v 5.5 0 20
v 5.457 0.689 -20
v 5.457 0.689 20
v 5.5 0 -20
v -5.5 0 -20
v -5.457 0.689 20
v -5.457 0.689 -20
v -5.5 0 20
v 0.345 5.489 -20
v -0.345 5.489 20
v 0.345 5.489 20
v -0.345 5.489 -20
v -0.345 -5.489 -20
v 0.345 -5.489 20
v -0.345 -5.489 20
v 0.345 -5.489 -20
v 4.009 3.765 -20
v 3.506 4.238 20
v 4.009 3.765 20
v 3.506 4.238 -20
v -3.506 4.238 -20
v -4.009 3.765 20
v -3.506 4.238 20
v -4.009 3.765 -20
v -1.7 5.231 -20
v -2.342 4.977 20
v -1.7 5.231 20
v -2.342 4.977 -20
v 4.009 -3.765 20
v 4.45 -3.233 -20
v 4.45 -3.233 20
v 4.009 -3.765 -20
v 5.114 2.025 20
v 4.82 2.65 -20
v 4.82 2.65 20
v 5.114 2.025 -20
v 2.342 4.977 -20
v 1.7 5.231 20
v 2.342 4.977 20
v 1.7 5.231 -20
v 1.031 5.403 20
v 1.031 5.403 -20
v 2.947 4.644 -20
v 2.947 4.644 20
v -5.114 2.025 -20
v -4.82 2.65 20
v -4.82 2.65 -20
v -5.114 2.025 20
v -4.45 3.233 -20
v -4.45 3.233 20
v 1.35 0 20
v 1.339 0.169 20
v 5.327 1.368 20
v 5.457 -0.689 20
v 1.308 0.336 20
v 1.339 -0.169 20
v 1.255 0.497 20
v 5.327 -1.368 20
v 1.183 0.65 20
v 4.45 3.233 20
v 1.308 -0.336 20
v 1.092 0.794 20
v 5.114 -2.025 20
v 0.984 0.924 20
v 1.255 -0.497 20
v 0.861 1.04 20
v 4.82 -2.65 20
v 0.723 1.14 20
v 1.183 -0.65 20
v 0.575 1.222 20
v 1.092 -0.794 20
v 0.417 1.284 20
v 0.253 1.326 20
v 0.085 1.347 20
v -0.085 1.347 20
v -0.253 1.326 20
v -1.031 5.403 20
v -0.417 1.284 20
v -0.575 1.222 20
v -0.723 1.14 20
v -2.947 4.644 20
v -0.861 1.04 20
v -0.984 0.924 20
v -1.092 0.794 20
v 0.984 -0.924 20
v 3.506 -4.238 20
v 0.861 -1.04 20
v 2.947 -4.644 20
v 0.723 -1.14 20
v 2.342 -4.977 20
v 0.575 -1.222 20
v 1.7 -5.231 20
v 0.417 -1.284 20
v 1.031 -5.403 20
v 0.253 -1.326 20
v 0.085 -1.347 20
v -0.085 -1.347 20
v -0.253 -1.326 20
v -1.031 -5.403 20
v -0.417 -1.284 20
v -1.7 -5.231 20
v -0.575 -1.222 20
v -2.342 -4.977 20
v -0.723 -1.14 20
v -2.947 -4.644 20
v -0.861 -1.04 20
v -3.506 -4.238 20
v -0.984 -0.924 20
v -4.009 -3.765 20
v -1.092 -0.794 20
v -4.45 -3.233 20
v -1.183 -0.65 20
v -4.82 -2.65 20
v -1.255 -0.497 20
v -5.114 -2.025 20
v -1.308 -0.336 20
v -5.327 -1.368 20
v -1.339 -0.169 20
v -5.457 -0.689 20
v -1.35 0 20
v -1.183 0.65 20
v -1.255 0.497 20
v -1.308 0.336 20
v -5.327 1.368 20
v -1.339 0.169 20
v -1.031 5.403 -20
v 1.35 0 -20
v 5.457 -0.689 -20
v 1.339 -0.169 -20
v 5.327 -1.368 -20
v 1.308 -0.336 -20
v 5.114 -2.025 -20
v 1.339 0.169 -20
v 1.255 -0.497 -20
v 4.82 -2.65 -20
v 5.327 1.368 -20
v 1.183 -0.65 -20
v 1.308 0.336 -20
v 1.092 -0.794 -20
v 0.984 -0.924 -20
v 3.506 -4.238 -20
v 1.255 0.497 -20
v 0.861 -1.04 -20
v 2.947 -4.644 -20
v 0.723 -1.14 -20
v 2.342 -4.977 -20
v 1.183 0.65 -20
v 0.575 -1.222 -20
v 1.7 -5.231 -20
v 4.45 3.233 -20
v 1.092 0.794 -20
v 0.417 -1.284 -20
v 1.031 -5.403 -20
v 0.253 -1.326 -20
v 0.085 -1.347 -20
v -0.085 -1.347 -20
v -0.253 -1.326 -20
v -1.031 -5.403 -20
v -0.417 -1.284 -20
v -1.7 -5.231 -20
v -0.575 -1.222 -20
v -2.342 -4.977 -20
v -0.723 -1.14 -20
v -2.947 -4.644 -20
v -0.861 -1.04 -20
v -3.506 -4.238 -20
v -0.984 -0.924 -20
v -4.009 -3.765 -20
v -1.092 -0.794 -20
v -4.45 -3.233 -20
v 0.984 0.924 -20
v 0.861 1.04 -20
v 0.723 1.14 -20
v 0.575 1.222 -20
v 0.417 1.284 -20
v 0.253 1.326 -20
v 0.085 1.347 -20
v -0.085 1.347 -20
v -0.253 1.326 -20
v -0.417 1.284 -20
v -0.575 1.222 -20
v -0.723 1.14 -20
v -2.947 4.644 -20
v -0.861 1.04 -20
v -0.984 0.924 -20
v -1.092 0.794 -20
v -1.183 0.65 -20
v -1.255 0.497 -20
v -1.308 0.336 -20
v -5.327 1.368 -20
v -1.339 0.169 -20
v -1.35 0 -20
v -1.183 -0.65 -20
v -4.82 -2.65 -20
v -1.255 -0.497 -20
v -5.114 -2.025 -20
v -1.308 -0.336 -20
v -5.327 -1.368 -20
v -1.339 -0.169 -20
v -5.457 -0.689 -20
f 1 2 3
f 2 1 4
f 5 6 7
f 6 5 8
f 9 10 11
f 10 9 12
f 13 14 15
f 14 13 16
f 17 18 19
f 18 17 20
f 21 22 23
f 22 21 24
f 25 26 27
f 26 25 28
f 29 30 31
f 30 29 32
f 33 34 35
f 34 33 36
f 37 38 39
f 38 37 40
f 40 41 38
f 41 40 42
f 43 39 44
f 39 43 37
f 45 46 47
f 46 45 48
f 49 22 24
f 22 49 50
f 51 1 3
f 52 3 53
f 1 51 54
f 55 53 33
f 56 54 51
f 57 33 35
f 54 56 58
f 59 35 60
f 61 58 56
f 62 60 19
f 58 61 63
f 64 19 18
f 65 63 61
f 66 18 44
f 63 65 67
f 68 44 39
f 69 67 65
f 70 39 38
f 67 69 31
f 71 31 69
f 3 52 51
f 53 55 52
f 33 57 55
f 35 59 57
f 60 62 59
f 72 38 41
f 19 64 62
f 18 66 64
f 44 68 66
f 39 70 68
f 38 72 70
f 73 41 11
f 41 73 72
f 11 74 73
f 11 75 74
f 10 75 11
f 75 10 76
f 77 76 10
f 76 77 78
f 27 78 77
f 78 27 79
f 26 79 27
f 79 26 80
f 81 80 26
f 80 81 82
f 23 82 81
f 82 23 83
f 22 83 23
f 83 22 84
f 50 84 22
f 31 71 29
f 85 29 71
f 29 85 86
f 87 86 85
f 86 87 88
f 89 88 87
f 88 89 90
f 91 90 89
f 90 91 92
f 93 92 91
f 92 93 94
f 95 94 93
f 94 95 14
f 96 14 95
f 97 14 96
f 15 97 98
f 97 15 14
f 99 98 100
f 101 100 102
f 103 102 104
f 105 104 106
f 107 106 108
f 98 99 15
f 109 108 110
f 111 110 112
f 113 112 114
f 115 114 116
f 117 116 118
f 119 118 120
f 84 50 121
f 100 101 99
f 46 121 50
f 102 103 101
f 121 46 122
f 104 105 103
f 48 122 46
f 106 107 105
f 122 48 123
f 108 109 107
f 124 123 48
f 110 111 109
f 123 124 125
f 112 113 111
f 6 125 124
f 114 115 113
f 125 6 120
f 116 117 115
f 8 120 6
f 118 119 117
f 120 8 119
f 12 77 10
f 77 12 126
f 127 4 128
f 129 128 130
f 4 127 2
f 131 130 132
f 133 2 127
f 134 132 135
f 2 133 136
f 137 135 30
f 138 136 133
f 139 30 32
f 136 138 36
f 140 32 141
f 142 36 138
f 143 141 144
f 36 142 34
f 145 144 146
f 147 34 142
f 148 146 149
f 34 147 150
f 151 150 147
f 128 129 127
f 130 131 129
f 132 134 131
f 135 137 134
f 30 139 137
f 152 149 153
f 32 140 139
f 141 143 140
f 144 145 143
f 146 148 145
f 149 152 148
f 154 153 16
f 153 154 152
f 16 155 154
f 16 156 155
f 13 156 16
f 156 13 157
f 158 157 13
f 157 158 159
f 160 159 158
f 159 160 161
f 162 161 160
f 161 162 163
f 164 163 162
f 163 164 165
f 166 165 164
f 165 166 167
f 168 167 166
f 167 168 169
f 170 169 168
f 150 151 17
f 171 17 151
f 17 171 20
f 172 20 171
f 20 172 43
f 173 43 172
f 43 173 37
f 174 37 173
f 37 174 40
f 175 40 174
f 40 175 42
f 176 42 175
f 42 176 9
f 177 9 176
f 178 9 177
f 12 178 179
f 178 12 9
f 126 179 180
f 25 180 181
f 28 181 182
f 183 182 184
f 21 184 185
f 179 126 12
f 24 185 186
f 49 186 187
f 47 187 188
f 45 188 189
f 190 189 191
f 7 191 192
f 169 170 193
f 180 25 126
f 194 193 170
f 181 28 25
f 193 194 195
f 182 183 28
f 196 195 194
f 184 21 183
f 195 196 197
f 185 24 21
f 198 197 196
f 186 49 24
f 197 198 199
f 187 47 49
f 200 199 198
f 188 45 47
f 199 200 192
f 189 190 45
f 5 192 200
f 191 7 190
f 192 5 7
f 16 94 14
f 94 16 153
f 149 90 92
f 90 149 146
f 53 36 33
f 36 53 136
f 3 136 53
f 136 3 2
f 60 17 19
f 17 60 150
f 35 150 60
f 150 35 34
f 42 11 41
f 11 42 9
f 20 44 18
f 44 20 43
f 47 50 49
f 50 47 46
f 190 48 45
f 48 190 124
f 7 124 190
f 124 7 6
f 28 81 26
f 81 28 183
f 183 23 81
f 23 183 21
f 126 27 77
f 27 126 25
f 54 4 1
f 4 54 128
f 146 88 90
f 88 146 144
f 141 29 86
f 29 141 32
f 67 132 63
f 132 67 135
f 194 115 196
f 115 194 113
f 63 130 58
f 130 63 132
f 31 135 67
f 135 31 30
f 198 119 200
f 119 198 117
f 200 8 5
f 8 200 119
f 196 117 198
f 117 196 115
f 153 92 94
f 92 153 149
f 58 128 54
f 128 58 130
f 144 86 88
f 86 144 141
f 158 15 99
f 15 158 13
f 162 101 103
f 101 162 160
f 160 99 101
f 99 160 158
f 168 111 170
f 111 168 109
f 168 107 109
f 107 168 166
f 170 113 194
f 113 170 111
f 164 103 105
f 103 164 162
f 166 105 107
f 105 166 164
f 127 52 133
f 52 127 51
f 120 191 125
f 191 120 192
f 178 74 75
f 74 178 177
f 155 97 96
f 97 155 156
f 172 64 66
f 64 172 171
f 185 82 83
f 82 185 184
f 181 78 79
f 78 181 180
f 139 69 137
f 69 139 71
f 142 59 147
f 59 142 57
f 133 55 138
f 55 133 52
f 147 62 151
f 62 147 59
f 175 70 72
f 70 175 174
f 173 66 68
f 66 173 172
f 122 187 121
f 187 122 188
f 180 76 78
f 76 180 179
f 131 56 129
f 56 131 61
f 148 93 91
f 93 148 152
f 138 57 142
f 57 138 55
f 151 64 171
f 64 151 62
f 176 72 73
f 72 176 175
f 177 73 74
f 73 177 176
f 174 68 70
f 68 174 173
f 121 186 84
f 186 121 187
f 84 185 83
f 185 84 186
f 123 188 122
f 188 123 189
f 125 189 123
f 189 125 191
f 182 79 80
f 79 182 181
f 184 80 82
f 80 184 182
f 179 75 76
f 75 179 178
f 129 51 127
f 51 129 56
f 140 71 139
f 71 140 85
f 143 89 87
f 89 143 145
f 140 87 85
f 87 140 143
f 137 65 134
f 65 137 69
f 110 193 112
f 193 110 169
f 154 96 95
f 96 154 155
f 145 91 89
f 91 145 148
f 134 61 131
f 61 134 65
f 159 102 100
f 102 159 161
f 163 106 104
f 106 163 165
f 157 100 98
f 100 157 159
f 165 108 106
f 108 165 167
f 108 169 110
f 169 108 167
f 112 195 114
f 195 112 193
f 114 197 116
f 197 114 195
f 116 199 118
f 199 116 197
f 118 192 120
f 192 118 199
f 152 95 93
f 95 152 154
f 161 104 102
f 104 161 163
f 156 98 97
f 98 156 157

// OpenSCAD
$fn = 50;


difference() {
	union() {
		translate(v = [0, 0, -20.0000000000]) {
			cylinder(h = 40, r = 5.5000000000);
		}
	}
	union() {
		translate(v = [0, 0, -100.0000000000]) {
			cylinder(h = 200, r = 1.3500000000);
		}
	}
}
